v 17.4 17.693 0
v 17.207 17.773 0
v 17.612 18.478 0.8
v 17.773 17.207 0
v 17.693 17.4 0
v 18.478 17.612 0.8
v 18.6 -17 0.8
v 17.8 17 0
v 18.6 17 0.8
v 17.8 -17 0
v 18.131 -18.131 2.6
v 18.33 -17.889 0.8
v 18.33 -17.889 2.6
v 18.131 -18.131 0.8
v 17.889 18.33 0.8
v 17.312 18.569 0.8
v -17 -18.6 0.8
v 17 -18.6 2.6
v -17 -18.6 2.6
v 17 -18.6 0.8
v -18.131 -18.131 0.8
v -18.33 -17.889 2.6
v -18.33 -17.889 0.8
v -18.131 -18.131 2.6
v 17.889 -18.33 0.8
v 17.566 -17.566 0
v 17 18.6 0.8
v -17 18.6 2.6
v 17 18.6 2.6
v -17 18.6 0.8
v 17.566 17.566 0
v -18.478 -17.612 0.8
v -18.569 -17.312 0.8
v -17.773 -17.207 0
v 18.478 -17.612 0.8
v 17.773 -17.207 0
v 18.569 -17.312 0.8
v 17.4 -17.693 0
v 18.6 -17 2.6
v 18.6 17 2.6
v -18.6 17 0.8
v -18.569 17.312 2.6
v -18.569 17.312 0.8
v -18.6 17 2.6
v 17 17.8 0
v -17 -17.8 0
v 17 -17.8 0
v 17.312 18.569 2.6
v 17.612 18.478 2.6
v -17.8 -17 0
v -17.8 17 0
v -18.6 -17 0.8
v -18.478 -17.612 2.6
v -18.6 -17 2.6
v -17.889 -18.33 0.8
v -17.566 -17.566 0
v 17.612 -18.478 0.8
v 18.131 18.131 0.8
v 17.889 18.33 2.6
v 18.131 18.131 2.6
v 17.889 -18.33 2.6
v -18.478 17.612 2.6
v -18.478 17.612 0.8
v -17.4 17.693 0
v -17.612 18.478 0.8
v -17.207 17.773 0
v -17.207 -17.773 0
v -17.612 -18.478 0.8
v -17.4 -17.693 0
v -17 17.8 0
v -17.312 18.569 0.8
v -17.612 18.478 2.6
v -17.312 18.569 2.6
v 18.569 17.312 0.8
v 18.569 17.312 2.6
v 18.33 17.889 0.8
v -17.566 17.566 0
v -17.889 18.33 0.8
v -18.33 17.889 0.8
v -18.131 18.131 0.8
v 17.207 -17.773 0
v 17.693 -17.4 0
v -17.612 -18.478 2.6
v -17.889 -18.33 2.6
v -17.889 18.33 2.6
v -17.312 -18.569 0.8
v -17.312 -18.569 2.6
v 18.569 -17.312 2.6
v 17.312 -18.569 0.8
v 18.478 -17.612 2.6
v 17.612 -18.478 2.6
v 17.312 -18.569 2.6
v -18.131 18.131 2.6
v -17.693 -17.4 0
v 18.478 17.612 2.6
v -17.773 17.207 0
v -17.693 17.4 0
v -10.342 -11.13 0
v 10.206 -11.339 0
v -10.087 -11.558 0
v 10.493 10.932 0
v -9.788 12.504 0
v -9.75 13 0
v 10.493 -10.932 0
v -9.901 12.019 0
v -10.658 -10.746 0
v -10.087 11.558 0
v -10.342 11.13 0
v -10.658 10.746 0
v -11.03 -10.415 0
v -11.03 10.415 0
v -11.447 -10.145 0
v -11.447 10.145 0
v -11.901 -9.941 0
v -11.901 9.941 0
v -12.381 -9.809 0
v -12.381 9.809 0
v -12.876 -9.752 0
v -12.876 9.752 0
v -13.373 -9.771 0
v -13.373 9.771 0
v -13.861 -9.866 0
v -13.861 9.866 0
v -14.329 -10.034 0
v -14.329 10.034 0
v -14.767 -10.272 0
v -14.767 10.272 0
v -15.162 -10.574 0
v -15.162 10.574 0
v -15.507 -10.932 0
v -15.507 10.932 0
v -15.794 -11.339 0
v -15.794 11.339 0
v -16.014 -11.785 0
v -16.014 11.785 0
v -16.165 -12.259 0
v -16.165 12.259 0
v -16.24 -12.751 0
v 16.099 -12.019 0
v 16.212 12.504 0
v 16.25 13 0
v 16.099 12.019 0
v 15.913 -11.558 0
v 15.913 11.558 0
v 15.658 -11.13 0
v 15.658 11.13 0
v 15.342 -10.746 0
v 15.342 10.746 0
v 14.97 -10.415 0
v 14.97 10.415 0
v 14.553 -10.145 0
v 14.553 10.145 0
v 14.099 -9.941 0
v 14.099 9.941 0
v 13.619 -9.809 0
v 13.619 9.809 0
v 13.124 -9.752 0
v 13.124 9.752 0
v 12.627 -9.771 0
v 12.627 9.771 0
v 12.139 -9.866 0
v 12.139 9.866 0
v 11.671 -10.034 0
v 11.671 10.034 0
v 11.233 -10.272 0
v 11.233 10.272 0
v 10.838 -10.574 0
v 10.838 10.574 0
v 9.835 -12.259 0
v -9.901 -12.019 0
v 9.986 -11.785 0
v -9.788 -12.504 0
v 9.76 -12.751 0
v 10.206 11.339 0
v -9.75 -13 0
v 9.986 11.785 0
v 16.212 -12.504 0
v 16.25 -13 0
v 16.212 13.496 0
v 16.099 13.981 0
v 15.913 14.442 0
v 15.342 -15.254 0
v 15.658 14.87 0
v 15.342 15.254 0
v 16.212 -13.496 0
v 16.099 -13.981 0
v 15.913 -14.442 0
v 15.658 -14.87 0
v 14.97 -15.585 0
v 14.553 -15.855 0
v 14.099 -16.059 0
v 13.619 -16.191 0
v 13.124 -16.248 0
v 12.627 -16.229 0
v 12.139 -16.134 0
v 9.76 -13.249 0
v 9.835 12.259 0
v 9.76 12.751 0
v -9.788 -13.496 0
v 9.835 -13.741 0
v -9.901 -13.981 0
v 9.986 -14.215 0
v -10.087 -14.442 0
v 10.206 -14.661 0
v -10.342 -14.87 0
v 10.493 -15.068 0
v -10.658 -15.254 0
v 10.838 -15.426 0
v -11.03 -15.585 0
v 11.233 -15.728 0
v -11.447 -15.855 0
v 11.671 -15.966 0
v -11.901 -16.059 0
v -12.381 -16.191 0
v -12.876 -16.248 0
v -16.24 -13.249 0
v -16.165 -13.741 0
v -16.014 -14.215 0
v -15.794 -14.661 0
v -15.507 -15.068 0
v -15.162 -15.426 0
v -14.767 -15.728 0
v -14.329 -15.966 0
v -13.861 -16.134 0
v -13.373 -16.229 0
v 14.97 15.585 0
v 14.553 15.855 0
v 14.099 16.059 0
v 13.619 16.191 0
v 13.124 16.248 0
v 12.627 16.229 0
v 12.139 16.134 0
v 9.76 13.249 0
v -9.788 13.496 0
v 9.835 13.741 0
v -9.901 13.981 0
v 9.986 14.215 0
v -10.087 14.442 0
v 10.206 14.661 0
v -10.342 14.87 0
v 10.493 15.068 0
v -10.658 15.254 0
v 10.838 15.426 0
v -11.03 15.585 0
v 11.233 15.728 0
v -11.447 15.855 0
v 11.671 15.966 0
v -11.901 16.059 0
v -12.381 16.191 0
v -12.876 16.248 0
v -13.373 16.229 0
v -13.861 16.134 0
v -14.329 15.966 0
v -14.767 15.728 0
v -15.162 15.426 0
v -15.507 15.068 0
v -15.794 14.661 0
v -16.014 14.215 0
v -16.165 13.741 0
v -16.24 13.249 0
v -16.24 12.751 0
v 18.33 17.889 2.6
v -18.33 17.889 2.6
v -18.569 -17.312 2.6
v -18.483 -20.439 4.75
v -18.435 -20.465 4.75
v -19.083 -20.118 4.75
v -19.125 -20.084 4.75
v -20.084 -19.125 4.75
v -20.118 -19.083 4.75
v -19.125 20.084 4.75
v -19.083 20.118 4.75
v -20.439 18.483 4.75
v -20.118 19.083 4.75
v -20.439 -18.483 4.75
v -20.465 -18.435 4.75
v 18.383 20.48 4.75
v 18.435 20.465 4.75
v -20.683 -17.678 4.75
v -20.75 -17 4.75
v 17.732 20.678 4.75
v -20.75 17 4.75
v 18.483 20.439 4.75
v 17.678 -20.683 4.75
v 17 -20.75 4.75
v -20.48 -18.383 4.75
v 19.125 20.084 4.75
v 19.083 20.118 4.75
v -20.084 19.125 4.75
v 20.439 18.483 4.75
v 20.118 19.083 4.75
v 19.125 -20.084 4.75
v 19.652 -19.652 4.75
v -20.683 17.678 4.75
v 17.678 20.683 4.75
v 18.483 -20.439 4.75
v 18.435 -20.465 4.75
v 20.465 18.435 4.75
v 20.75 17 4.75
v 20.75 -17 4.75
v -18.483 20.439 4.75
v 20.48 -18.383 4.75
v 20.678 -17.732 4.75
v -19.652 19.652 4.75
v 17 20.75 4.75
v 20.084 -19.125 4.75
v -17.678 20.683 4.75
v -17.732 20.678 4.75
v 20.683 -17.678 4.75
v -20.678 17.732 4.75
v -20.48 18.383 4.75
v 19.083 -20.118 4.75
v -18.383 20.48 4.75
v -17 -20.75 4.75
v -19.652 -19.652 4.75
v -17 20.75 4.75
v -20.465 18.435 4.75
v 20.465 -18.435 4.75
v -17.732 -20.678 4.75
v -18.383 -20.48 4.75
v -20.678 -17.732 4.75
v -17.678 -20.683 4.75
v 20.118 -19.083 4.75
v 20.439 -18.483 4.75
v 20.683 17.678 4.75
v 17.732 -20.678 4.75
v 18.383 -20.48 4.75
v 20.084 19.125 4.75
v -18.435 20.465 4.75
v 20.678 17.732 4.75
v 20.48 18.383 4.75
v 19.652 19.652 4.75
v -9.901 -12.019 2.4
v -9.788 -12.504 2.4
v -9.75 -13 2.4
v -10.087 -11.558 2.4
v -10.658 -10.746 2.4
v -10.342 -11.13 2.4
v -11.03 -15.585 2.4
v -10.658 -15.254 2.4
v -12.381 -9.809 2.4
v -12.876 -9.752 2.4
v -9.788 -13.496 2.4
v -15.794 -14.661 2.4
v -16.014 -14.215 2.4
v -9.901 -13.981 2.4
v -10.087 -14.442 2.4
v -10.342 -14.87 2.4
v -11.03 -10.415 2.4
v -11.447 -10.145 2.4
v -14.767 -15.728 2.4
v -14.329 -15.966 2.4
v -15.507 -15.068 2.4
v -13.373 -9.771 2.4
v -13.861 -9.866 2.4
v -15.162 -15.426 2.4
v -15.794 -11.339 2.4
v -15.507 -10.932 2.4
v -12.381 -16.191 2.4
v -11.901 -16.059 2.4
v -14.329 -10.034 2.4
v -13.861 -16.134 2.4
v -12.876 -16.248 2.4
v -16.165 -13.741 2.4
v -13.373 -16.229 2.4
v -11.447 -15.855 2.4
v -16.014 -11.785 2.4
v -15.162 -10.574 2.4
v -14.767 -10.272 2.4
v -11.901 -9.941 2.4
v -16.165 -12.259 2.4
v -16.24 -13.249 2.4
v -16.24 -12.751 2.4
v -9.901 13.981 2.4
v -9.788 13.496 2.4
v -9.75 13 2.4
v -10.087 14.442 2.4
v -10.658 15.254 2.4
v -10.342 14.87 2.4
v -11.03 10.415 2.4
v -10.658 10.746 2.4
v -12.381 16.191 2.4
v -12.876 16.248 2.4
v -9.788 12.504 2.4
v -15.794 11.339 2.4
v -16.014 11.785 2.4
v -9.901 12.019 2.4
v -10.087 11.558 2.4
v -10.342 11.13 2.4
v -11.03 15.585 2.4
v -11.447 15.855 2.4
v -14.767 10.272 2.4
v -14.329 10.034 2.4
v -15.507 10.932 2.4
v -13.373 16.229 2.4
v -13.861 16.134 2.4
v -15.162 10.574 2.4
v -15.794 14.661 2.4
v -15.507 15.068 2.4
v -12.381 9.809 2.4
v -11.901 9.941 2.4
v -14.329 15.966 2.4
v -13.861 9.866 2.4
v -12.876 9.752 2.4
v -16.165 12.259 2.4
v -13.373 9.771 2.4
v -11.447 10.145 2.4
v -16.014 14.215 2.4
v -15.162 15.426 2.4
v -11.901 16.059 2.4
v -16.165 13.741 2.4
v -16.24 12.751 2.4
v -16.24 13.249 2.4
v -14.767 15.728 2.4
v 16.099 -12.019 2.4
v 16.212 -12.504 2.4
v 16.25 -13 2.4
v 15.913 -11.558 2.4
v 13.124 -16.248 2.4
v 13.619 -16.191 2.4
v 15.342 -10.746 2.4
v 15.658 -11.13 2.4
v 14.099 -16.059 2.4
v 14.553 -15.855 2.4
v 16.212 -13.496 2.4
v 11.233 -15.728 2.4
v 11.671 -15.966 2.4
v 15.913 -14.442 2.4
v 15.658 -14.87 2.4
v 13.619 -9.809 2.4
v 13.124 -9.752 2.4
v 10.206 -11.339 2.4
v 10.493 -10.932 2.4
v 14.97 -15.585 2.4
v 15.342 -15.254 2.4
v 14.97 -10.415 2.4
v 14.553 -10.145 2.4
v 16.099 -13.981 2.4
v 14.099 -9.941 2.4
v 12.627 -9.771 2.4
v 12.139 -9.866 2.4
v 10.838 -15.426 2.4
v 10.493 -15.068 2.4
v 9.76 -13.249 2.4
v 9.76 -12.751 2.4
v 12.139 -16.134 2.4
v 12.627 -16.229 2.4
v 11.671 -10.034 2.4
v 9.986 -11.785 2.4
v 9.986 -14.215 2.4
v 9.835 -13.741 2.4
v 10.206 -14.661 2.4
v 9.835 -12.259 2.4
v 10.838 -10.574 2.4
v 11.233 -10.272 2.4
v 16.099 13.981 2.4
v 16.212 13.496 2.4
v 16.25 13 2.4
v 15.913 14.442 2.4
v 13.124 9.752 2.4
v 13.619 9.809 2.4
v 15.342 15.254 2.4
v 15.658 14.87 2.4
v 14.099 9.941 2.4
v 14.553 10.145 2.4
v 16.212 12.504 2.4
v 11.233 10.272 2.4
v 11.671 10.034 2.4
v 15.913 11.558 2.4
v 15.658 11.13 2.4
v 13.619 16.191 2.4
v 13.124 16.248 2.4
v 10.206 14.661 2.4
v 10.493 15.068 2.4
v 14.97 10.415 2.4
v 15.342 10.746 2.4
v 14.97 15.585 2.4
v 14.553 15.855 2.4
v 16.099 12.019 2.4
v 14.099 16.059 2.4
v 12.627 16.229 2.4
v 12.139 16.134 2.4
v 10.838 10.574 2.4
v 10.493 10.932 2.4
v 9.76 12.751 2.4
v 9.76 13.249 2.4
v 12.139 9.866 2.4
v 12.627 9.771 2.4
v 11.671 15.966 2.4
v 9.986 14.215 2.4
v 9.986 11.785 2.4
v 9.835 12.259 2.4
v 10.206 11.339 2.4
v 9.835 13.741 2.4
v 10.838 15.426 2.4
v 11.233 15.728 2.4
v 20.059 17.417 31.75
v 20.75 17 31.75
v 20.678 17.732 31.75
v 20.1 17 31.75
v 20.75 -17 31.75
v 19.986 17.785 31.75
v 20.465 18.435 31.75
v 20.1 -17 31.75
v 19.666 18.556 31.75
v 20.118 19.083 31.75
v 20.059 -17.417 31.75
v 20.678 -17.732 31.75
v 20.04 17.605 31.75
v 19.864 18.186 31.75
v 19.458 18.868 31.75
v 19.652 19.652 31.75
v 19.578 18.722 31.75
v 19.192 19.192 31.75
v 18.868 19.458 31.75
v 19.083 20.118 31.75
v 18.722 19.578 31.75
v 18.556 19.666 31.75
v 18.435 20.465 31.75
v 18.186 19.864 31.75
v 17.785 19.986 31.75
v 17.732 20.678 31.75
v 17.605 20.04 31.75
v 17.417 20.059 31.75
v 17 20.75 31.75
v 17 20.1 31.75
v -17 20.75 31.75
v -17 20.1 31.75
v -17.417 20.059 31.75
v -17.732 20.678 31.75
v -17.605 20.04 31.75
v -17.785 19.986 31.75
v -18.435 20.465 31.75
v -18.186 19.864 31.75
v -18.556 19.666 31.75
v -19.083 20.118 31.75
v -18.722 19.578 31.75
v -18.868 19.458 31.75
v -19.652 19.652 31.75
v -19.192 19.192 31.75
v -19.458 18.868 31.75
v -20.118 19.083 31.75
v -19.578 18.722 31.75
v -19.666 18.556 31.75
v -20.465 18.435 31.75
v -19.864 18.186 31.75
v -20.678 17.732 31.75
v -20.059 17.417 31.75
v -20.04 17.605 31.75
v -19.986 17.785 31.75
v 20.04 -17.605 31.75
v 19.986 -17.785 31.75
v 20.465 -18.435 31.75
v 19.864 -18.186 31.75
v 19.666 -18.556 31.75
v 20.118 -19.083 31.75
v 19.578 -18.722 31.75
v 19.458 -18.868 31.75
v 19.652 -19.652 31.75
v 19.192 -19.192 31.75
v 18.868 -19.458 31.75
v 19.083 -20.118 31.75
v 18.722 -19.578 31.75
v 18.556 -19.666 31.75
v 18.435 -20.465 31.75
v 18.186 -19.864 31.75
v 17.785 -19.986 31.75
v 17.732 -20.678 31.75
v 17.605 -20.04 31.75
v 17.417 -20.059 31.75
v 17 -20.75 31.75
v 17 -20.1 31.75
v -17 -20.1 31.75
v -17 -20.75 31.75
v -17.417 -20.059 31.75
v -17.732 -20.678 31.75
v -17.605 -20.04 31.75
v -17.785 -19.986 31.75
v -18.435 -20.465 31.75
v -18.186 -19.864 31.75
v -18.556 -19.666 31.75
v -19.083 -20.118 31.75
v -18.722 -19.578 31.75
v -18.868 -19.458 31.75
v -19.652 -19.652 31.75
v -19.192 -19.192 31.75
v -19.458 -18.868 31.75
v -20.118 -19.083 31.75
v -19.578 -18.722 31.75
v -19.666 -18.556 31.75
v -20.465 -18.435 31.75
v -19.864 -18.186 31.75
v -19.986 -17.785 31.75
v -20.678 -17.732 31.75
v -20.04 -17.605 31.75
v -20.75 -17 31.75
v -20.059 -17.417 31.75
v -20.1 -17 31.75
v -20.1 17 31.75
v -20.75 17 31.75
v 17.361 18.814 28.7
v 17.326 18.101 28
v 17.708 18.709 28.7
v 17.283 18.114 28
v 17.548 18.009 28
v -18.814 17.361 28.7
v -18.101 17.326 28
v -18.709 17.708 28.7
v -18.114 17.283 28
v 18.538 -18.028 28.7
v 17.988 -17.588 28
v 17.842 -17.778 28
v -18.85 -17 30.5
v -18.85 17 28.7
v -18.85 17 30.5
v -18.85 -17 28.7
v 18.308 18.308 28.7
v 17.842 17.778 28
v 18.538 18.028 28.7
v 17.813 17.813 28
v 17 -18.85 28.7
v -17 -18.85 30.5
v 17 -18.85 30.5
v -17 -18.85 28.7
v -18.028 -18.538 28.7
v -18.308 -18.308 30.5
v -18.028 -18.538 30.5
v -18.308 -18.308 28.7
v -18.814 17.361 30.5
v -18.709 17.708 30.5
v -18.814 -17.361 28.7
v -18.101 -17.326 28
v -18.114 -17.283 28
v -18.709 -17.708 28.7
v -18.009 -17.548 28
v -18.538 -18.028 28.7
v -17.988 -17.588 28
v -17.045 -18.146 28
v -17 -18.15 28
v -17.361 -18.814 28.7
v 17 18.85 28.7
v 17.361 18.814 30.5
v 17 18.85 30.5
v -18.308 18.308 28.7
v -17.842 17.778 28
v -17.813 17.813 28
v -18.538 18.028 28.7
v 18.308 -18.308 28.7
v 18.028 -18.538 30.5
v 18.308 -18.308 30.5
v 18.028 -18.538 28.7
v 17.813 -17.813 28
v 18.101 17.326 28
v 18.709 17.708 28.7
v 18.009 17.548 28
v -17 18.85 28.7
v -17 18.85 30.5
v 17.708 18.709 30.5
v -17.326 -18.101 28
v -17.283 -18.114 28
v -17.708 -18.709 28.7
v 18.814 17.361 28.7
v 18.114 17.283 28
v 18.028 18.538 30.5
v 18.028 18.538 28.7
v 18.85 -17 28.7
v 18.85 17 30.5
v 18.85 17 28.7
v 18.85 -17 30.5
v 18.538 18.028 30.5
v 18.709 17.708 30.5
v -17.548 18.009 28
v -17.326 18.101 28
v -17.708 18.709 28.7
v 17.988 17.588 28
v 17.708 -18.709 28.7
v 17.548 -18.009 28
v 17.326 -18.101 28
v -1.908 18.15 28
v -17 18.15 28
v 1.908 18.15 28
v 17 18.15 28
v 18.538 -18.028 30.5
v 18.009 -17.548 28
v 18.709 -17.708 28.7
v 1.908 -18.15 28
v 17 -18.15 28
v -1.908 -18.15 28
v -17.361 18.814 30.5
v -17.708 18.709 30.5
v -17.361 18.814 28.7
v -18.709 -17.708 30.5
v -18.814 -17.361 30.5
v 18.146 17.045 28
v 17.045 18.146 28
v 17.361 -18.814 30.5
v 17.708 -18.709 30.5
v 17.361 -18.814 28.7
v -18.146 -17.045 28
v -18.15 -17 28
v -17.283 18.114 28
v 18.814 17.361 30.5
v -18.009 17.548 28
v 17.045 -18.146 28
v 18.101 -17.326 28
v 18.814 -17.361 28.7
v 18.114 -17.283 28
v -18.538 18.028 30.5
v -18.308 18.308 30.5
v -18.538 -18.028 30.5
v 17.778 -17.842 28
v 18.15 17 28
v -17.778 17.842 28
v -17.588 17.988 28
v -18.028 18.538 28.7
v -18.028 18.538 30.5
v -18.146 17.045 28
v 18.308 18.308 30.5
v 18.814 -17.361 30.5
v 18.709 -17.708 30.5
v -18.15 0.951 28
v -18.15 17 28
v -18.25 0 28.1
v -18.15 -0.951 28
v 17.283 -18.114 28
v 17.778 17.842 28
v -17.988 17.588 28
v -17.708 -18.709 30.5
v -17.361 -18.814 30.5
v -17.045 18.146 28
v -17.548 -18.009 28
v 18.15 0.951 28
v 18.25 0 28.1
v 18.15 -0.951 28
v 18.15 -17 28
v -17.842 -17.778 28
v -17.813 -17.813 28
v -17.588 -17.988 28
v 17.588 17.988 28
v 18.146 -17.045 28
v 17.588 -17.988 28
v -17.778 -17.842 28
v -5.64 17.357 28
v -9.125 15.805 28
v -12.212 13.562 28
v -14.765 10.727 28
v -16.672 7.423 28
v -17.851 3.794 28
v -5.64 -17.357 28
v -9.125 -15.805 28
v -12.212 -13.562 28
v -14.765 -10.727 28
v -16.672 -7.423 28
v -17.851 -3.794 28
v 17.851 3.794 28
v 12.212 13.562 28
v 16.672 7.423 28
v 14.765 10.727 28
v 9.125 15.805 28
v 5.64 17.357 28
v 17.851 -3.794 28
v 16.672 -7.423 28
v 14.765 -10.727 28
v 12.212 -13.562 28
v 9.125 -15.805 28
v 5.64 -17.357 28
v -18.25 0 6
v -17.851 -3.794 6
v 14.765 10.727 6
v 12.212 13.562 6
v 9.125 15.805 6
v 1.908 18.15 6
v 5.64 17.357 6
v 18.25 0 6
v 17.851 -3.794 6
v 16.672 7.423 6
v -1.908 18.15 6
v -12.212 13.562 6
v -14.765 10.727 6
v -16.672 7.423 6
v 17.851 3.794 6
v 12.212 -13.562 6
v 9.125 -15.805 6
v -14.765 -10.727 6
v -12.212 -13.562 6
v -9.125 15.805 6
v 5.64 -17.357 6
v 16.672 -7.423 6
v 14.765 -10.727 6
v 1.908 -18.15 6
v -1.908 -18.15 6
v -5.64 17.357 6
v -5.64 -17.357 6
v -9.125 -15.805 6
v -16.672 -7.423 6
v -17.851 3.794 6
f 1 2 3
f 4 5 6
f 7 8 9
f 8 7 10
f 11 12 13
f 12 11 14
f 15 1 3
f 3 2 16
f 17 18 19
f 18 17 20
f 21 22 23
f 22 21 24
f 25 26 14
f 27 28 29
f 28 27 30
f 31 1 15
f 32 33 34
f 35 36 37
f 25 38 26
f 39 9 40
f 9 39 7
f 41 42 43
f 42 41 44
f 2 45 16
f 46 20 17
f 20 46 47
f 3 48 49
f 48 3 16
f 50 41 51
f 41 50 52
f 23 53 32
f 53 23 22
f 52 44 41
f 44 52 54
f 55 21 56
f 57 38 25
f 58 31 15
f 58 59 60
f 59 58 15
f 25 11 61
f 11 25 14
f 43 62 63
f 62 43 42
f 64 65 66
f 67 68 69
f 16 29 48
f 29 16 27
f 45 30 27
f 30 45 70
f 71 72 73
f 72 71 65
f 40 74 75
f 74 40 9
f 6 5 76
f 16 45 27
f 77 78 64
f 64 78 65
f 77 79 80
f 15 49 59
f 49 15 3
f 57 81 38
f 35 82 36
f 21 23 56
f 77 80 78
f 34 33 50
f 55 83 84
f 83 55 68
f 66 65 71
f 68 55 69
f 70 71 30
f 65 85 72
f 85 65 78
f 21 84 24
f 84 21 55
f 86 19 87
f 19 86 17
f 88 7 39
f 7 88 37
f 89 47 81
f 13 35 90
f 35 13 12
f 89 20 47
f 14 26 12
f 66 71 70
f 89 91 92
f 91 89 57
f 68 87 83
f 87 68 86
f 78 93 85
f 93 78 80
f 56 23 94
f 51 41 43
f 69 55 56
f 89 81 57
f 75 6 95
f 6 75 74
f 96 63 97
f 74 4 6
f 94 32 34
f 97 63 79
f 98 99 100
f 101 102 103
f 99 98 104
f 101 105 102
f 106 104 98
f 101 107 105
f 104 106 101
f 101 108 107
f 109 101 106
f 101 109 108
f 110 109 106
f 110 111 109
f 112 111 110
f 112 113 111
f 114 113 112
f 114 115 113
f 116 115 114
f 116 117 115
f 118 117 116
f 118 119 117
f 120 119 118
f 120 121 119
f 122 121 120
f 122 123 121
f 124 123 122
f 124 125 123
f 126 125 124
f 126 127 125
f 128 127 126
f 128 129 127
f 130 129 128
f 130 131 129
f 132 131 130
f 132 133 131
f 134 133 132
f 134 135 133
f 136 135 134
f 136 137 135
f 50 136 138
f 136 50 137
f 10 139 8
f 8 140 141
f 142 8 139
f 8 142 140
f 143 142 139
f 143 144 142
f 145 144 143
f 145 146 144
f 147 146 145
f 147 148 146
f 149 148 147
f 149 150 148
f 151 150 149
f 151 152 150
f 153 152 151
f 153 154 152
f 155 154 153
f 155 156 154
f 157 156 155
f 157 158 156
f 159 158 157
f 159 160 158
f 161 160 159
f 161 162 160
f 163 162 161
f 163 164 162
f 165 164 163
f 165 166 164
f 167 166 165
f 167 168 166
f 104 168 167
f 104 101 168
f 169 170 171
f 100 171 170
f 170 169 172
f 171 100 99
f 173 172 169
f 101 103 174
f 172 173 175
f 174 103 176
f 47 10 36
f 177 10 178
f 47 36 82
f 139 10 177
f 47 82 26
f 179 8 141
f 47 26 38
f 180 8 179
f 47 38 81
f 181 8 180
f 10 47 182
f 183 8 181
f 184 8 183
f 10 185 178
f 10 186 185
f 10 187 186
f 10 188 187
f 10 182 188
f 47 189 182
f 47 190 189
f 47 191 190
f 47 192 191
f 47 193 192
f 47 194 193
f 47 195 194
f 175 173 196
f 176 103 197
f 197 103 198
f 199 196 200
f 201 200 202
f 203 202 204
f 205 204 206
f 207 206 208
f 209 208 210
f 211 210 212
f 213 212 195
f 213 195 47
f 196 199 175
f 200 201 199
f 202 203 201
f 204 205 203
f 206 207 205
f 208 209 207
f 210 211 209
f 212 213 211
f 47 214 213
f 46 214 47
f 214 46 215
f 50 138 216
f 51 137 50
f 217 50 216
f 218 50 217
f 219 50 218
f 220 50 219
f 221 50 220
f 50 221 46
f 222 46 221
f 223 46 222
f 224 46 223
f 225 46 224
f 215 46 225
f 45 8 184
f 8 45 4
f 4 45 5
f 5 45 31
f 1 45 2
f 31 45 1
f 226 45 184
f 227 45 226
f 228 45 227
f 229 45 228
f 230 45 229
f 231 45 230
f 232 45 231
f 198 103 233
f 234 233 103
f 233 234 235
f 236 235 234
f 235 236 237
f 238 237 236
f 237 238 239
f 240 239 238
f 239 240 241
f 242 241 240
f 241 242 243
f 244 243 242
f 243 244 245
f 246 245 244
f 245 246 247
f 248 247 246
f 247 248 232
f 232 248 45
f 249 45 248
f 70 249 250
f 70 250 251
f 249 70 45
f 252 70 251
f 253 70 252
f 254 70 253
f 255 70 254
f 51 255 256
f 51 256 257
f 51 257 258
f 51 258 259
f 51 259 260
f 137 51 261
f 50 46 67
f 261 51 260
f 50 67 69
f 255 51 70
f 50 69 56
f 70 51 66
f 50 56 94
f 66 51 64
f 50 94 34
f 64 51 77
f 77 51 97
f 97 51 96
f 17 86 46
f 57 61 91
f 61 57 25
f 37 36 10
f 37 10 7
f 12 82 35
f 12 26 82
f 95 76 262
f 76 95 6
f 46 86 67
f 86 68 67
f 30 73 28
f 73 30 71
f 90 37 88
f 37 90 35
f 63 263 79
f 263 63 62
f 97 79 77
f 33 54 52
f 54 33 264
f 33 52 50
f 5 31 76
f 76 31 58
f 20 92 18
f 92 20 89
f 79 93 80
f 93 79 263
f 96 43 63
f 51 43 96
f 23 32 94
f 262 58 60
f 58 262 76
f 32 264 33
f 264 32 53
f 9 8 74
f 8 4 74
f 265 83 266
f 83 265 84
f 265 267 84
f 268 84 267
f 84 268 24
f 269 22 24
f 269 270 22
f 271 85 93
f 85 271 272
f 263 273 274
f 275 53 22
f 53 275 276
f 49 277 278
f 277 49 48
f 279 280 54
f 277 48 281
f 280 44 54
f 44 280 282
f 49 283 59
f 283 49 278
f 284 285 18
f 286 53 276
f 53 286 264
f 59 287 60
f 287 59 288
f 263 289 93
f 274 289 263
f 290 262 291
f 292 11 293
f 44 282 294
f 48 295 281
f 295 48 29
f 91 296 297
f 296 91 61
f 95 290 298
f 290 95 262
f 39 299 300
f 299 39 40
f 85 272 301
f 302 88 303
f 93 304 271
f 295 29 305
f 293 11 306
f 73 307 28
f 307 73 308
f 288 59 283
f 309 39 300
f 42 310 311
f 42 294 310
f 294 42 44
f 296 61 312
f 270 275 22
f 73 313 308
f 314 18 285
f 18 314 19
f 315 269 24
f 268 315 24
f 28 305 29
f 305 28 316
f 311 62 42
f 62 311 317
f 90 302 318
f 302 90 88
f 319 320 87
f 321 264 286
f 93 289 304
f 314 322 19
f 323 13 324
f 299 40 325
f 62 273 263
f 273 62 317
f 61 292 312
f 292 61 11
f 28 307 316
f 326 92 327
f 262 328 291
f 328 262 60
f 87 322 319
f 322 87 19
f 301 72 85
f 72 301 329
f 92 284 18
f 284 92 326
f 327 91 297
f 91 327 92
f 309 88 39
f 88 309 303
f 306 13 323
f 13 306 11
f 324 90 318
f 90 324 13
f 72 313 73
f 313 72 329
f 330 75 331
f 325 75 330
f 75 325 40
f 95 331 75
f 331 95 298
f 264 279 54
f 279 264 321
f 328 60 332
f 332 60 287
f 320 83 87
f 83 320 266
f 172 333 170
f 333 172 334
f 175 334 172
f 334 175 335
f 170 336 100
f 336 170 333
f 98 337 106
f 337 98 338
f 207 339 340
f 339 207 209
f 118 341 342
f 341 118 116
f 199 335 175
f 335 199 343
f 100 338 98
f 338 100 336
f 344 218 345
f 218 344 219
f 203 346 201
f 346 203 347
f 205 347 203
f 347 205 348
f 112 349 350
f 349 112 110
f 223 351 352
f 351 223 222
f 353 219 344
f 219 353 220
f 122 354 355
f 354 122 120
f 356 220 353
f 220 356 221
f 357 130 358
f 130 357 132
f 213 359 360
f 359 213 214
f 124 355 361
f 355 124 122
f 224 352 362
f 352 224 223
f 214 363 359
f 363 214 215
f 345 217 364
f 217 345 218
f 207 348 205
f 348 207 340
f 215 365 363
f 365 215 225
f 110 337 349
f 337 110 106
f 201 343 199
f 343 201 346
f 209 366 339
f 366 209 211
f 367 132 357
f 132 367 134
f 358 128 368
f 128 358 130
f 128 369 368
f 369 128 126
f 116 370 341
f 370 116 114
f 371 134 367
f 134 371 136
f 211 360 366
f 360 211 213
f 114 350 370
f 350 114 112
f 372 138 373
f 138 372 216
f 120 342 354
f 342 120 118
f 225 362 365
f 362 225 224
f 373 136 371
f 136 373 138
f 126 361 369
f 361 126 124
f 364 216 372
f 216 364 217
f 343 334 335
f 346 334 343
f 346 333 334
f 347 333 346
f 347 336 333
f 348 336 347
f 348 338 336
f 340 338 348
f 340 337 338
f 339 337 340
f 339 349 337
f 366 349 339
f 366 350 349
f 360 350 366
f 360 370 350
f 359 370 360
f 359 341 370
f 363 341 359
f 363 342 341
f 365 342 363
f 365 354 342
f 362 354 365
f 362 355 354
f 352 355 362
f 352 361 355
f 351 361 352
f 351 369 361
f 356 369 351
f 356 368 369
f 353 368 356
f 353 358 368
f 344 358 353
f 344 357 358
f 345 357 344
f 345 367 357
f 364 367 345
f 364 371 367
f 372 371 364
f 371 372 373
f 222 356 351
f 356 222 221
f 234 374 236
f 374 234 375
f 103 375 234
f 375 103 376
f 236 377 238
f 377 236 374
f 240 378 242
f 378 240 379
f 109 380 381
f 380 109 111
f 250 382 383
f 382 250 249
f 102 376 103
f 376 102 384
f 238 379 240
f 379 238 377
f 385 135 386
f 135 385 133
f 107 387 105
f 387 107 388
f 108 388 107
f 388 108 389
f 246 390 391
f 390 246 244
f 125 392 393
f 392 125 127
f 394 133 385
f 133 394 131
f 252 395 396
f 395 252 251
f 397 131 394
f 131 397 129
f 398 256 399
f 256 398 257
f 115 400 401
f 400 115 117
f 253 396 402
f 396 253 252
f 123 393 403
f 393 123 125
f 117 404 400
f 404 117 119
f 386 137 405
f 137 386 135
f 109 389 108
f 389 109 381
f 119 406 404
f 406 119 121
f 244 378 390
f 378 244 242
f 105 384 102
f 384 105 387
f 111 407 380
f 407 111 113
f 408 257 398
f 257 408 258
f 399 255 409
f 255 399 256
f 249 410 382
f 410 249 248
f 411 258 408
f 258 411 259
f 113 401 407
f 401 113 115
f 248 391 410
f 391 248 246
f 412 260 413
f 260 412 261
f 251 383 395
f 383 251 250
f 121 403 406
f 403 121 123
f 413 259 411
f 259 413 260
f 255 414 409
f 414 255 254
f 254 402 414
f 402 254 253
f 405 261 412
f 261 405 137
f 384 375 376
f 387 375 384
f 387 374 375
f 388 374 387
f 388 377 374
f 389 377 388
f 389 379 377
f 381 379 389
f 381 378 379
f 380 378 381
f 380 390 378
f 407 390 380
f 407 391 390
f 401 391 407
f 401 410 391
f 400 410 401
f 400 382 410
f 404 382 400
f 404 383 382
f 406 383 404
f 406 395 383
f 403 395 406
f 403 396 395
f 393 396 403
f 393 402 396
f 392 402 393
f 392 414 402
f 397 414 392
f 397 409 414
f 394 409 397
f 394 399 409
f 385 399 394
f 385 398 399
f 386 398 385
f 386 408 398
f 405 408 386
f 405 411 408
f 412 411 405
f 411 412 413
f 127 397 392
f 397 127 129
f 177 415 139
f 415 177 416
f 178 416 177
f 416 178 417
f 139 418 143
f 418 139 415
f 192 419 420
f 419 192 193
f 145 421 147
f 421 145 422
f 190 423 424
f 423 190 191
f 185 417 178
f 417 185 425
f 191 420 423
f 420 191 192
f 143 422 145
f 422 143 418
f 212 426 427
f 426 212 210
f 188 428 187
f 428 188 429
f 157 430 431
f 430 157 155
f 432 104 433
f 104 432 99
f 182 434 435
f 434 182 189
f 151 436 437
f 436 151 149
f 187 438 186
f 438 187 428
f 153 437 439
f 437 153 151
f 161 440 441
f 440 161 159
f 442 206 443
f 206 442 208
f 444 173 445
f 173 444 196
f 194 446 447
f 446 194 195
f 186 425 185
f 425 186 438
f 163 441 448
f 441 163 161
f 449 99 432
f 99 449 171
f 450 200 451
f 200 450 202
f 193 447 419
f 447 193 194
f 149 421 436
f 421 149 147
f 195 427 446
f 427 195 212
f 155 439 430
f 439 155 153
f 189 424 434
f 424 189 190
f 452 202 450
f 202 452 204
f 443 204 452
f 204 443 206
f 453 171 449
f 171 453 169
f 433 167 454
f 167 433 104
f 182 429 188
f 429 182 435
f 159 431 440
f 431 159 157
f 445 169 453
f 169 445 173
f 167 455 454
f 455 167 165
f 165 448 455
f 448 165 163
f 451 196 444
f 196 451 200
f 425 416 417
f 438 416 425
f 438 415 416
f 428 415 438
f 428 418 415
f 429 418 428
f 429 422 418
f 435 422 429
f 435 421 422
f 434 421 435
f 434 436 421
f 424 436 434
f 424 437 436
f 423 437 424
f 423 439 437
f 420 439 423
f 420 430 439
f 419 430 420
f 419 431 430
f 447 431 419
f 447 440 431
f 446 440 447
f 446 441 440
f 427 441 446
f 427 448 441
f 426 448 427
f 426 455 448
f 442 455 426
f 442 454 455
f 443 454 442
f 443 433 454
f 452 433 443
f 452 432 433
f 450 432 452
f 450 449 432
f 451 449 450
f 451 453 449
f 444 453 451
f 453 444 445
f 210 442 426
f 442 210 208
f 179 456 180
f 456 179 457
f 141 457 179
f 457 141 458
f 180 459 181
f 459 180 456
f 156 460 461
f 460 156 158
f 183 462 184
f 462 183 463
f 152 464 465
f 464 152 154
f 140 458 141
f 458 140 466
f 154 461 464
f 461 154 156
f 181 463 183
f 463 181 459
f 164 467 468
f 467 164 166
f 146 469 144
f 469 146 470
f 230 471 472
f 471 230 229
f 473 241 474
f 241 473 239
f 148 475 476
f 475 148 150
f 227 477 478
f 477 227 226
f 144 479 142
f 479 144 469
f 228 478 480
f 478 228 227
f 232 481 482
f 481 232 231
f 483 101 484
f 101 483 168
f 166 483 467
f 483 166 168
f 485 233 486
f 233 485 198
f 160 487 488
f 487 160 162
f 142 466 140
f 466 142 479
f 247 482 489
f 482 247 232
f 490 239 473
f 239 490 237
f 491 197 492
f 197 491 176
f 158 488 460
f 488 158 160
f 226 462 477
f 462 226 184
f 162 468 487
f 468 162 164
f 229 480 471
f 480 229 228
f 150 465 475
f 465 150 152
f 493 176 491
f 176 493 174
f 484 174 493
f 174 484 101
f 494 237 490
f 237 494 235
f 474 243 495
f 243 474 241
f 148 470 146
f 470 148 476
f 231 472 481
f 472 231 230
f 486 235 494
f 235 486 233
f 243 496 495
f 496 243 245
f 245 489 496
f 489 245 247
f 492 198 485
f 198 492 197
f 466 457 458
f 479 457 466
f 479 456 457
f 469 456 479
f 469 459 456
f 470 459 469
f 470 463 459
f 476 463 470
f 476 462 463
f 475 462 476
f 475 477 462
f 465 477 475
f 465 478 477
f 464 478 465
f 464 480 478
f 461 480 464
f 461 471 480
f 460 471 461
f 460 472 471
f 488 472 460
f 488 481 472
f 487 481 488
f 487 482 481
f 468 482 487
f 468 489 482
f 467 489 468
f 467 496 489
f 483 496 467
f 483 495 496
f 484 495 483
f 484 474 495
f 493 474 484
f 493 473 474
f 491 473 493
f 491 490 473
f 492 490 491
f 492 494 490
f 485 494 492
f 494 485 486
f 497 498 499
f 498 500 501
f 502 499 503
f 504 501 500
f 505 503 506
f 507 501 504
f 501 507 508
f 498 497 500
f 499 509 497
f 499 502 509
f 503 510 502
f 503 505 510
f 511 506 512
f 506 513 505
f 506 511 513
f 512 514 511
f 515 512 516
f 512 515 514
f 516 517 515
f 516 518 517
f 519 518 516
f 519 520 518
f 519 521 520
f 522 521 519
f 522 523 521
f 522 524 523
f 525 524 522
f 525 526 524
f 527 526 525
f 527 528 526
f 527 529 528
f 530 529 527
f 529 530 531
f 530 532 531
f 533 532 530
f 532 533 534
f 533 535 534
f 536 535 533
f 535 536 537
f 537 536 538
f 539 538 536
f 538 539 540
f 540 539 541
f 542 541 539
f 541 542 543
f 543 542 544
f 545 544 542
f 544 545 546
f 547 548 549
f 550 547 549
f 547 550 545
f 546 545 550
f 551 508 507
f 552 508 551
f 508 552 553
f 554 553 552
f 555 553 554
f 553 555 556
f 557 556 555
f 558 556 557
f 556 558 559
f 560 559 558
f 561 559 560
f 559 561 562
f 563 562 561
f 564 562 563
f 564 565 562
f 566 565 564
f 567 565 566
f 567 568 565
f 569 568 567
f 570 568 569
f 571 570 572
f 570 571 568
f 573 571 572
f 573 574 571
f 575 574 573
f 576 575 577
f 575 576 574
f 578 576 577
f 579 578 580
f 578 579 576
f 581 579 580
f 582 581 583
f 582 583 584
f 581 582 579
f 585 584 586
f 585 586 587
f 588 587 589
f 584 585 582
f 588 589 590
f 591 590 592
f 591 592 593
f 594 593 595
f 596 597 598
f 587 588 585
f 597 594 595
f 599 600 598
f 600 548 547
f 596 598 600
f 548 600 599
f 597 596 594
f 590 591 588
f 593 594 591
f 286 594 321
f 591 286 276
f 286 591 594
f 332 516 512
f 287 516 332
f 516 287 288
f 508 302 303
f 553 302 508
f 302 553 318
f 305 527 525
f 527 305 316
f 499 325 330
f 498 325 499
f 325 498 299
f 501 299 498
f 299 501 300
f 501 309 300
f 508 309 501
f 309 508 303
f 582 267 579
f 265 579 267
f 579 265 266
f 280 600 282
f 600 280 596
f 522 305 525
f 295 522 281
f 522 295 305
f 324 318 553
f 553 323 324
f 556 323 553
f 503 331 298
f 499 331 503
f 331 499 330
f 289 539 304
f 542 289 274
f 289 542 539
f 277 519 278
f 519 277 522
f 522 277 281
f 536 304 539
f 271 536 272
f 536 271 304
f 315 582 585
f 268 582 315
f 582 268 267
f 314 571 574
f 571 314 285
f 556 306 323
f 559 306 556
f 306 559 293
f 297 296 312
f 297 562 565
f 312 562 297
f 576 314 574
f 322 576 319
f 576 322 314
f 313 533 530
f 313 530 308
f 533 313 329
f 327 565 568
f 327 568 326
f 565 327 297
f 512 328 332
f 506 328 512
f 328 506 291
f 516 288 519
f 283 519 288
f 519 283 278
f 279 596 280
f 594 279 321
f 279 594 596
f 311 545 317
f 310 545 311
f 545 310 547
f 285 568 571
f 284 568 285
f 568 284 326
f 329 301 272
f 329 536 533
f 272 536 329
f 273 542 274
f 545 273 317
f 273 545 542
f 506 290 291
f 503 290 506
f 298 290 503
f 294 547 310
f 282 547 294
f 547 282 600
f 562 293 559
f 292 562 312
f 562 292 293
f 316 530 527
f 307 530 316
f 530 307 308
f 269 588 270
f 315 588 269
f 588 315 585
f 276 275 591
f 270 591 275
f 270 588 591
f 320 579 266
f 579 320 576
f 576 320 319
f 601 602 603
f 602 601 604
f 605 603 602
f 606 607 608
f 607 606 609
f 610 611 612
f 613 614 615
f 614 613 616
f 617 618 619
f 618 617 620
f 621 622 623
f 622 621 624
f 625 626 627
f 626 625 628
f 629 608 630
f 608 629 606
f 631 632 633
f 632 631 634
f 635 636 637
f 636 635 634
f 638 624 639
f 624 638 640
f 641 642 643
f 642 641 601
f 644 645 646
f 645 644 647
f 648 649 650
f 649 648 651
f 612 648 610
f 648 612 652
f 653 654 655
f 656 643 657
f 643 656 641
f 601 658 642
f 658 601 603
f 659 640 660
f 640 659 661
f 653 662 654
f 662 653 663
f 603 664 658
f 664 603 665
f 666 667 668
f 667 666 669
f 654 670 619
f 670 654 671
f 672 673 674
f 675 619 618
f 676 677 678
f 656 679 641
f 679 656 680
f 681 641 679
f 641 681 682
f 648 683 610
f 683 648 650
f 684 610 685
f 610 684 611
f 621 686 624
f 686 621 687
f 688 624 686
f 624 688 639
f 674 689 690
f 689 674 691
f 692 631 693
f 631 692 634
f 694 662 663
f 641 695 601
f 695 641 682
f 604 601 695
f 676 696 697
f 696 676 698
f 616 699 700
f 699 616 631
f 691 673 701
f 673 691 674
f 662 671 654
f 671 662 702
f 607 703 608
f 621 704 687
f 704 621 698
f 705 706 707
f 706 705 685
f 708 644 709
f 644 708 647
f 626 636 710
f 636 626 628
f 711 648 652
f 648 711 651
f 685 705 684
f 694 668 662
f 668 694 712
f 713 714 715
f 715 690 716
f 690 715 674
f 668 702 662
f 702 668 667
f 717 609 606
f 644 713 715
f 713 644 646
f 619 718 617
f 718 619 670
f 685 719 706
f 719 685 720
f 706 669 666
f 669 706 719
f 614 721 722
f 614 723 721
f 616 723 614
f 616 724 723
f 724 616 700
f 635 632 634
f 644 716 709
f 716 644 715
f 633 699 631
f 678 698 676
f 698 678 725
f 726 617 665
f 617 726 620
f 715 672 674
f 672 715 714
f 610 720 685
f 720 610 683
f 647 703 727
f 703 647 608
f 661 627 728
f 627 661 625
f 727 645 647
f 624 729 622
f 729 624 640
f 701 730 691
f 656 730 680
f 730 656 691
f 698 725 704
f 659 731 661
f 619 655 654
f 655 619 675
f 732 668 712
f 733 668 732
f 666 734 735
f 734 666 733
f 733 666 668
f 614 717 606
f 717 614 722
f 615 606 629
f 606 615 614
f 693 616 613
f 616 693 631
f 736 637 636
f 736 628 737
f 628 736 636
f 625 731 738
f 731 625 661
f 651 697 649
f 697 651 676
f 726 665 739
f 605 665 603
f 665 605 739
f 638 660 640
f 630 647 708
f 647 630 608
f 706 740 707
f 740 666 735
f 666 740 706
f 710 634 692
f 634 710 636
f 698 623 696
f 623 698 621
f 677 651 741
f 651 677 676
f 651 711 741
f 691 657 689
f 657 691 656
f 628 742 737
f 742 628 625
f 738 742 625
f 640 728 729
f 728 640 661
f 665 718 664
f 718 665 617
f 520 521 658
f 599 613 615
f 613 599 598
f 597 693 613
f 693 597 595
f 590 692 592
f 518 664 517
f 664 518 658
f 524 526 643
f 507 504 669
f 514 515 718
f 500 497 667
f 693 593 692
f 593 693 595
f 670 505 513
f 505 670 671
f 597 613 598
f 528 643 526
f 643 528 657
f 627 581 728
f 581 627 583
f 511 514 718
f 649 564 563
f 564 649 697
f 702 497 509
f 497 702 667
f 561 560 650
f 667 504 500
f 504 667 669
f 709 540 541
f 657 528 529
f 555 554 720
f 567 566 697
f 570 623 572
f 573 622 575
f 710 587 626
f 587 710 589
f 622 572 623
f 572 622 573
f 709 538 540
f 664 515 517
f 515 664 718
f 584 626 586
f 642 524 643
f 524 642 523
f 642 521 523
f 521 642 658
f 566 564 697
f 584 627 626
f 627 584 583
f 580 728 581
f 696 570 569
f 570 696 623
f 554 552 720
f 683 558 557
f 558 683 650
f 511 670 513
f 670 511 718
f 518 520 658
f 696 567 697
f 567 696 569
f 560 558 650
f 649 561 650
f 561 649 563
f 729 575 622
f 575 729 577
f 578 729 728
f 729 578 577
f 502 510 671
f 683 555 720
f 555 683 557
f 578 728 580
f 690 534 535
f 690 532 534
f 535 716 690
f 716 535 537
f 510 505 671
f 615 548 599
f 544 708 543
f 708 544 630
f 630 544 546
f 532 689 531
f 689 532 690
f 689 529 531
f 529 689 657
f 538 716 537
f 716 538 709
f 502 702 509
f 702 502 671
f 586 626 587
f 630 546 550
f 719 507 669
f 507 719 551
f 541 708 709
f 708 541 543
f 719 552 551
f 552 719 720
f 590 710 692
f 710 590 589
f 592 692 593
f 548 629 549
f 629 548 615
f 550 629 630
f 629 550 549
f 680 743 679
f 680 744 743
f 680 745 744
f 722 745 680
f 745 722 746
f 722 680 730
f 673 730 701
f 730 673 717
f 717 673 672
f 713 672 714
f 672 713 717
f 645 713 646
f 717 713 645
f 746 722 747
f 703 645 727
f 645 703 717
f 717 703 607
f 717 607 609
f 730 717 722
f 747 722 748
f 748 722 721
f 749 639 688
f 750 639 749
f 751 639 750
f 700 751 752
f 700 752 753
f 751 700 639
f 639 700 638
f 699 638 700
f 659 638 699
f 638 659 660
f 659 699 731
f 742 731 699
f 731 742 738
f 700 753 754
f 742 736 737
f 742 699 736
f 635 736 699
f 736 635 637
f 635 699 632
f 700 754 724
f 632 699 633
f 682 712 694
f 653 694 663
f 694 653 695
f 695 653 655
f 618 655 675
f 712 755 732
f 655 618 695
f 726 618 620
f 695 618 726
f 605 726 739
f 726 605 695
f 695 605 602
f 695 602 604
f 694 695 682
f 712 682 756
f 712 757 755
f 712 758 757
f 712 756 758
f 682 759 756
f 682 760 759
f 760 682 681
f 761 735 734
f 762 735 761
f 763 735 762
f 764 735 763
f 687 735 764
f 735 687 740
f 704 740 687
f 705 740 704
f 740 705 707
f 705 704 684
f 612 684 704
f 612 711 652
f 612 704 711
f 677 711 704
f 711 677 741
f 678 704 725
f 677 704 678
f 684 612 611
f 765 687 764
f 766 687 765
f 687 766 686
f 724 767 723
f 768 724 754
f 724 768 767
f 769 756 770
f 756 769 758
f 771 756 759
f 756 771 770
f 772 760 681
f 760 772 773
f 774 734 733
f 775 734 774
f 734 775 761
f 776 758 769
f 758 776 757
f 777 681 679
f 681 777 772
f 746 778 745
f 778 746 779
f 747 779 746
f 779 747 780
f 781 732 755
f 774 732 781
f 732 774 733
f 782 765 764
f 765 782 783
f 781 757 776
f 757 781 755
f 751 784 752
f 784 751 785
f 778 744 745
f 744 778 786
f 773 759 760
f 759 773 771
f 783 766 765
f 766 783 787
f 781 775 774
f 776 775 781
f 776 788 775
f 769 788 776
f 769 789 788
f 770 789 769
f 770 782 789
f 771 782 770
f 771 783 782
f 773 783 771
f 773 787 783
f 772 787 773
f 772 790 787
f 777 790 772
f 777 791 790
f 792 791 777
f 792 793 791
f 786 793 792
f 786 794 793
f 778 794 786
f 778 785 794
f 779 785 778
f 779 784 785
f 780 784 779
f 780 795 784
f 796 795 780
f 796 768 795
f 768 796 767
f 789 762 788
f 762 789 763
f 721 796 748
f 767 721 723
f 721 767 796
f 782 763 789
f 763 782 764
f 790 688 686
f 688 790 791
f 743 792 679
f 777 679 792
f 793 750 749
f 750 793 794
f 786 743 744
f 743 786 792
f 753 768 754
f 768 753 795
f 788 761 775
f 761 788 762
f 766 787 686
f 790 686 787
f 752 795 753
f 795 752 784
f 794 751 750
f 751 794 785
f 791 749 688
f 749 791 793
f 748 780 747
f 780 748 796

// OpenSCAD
include <../../gridfinity_openscad/gridfinity_modules.scad>

diameter = 36.5;
height = 97;

difference() {
  grid_block(1,1,4, screw_depth = 0,center = true, box_corner_attachments_only = false);

	translate([0,0,height/2+6])
		cylinder(height,diameter/2,diameter/2,true);
}
